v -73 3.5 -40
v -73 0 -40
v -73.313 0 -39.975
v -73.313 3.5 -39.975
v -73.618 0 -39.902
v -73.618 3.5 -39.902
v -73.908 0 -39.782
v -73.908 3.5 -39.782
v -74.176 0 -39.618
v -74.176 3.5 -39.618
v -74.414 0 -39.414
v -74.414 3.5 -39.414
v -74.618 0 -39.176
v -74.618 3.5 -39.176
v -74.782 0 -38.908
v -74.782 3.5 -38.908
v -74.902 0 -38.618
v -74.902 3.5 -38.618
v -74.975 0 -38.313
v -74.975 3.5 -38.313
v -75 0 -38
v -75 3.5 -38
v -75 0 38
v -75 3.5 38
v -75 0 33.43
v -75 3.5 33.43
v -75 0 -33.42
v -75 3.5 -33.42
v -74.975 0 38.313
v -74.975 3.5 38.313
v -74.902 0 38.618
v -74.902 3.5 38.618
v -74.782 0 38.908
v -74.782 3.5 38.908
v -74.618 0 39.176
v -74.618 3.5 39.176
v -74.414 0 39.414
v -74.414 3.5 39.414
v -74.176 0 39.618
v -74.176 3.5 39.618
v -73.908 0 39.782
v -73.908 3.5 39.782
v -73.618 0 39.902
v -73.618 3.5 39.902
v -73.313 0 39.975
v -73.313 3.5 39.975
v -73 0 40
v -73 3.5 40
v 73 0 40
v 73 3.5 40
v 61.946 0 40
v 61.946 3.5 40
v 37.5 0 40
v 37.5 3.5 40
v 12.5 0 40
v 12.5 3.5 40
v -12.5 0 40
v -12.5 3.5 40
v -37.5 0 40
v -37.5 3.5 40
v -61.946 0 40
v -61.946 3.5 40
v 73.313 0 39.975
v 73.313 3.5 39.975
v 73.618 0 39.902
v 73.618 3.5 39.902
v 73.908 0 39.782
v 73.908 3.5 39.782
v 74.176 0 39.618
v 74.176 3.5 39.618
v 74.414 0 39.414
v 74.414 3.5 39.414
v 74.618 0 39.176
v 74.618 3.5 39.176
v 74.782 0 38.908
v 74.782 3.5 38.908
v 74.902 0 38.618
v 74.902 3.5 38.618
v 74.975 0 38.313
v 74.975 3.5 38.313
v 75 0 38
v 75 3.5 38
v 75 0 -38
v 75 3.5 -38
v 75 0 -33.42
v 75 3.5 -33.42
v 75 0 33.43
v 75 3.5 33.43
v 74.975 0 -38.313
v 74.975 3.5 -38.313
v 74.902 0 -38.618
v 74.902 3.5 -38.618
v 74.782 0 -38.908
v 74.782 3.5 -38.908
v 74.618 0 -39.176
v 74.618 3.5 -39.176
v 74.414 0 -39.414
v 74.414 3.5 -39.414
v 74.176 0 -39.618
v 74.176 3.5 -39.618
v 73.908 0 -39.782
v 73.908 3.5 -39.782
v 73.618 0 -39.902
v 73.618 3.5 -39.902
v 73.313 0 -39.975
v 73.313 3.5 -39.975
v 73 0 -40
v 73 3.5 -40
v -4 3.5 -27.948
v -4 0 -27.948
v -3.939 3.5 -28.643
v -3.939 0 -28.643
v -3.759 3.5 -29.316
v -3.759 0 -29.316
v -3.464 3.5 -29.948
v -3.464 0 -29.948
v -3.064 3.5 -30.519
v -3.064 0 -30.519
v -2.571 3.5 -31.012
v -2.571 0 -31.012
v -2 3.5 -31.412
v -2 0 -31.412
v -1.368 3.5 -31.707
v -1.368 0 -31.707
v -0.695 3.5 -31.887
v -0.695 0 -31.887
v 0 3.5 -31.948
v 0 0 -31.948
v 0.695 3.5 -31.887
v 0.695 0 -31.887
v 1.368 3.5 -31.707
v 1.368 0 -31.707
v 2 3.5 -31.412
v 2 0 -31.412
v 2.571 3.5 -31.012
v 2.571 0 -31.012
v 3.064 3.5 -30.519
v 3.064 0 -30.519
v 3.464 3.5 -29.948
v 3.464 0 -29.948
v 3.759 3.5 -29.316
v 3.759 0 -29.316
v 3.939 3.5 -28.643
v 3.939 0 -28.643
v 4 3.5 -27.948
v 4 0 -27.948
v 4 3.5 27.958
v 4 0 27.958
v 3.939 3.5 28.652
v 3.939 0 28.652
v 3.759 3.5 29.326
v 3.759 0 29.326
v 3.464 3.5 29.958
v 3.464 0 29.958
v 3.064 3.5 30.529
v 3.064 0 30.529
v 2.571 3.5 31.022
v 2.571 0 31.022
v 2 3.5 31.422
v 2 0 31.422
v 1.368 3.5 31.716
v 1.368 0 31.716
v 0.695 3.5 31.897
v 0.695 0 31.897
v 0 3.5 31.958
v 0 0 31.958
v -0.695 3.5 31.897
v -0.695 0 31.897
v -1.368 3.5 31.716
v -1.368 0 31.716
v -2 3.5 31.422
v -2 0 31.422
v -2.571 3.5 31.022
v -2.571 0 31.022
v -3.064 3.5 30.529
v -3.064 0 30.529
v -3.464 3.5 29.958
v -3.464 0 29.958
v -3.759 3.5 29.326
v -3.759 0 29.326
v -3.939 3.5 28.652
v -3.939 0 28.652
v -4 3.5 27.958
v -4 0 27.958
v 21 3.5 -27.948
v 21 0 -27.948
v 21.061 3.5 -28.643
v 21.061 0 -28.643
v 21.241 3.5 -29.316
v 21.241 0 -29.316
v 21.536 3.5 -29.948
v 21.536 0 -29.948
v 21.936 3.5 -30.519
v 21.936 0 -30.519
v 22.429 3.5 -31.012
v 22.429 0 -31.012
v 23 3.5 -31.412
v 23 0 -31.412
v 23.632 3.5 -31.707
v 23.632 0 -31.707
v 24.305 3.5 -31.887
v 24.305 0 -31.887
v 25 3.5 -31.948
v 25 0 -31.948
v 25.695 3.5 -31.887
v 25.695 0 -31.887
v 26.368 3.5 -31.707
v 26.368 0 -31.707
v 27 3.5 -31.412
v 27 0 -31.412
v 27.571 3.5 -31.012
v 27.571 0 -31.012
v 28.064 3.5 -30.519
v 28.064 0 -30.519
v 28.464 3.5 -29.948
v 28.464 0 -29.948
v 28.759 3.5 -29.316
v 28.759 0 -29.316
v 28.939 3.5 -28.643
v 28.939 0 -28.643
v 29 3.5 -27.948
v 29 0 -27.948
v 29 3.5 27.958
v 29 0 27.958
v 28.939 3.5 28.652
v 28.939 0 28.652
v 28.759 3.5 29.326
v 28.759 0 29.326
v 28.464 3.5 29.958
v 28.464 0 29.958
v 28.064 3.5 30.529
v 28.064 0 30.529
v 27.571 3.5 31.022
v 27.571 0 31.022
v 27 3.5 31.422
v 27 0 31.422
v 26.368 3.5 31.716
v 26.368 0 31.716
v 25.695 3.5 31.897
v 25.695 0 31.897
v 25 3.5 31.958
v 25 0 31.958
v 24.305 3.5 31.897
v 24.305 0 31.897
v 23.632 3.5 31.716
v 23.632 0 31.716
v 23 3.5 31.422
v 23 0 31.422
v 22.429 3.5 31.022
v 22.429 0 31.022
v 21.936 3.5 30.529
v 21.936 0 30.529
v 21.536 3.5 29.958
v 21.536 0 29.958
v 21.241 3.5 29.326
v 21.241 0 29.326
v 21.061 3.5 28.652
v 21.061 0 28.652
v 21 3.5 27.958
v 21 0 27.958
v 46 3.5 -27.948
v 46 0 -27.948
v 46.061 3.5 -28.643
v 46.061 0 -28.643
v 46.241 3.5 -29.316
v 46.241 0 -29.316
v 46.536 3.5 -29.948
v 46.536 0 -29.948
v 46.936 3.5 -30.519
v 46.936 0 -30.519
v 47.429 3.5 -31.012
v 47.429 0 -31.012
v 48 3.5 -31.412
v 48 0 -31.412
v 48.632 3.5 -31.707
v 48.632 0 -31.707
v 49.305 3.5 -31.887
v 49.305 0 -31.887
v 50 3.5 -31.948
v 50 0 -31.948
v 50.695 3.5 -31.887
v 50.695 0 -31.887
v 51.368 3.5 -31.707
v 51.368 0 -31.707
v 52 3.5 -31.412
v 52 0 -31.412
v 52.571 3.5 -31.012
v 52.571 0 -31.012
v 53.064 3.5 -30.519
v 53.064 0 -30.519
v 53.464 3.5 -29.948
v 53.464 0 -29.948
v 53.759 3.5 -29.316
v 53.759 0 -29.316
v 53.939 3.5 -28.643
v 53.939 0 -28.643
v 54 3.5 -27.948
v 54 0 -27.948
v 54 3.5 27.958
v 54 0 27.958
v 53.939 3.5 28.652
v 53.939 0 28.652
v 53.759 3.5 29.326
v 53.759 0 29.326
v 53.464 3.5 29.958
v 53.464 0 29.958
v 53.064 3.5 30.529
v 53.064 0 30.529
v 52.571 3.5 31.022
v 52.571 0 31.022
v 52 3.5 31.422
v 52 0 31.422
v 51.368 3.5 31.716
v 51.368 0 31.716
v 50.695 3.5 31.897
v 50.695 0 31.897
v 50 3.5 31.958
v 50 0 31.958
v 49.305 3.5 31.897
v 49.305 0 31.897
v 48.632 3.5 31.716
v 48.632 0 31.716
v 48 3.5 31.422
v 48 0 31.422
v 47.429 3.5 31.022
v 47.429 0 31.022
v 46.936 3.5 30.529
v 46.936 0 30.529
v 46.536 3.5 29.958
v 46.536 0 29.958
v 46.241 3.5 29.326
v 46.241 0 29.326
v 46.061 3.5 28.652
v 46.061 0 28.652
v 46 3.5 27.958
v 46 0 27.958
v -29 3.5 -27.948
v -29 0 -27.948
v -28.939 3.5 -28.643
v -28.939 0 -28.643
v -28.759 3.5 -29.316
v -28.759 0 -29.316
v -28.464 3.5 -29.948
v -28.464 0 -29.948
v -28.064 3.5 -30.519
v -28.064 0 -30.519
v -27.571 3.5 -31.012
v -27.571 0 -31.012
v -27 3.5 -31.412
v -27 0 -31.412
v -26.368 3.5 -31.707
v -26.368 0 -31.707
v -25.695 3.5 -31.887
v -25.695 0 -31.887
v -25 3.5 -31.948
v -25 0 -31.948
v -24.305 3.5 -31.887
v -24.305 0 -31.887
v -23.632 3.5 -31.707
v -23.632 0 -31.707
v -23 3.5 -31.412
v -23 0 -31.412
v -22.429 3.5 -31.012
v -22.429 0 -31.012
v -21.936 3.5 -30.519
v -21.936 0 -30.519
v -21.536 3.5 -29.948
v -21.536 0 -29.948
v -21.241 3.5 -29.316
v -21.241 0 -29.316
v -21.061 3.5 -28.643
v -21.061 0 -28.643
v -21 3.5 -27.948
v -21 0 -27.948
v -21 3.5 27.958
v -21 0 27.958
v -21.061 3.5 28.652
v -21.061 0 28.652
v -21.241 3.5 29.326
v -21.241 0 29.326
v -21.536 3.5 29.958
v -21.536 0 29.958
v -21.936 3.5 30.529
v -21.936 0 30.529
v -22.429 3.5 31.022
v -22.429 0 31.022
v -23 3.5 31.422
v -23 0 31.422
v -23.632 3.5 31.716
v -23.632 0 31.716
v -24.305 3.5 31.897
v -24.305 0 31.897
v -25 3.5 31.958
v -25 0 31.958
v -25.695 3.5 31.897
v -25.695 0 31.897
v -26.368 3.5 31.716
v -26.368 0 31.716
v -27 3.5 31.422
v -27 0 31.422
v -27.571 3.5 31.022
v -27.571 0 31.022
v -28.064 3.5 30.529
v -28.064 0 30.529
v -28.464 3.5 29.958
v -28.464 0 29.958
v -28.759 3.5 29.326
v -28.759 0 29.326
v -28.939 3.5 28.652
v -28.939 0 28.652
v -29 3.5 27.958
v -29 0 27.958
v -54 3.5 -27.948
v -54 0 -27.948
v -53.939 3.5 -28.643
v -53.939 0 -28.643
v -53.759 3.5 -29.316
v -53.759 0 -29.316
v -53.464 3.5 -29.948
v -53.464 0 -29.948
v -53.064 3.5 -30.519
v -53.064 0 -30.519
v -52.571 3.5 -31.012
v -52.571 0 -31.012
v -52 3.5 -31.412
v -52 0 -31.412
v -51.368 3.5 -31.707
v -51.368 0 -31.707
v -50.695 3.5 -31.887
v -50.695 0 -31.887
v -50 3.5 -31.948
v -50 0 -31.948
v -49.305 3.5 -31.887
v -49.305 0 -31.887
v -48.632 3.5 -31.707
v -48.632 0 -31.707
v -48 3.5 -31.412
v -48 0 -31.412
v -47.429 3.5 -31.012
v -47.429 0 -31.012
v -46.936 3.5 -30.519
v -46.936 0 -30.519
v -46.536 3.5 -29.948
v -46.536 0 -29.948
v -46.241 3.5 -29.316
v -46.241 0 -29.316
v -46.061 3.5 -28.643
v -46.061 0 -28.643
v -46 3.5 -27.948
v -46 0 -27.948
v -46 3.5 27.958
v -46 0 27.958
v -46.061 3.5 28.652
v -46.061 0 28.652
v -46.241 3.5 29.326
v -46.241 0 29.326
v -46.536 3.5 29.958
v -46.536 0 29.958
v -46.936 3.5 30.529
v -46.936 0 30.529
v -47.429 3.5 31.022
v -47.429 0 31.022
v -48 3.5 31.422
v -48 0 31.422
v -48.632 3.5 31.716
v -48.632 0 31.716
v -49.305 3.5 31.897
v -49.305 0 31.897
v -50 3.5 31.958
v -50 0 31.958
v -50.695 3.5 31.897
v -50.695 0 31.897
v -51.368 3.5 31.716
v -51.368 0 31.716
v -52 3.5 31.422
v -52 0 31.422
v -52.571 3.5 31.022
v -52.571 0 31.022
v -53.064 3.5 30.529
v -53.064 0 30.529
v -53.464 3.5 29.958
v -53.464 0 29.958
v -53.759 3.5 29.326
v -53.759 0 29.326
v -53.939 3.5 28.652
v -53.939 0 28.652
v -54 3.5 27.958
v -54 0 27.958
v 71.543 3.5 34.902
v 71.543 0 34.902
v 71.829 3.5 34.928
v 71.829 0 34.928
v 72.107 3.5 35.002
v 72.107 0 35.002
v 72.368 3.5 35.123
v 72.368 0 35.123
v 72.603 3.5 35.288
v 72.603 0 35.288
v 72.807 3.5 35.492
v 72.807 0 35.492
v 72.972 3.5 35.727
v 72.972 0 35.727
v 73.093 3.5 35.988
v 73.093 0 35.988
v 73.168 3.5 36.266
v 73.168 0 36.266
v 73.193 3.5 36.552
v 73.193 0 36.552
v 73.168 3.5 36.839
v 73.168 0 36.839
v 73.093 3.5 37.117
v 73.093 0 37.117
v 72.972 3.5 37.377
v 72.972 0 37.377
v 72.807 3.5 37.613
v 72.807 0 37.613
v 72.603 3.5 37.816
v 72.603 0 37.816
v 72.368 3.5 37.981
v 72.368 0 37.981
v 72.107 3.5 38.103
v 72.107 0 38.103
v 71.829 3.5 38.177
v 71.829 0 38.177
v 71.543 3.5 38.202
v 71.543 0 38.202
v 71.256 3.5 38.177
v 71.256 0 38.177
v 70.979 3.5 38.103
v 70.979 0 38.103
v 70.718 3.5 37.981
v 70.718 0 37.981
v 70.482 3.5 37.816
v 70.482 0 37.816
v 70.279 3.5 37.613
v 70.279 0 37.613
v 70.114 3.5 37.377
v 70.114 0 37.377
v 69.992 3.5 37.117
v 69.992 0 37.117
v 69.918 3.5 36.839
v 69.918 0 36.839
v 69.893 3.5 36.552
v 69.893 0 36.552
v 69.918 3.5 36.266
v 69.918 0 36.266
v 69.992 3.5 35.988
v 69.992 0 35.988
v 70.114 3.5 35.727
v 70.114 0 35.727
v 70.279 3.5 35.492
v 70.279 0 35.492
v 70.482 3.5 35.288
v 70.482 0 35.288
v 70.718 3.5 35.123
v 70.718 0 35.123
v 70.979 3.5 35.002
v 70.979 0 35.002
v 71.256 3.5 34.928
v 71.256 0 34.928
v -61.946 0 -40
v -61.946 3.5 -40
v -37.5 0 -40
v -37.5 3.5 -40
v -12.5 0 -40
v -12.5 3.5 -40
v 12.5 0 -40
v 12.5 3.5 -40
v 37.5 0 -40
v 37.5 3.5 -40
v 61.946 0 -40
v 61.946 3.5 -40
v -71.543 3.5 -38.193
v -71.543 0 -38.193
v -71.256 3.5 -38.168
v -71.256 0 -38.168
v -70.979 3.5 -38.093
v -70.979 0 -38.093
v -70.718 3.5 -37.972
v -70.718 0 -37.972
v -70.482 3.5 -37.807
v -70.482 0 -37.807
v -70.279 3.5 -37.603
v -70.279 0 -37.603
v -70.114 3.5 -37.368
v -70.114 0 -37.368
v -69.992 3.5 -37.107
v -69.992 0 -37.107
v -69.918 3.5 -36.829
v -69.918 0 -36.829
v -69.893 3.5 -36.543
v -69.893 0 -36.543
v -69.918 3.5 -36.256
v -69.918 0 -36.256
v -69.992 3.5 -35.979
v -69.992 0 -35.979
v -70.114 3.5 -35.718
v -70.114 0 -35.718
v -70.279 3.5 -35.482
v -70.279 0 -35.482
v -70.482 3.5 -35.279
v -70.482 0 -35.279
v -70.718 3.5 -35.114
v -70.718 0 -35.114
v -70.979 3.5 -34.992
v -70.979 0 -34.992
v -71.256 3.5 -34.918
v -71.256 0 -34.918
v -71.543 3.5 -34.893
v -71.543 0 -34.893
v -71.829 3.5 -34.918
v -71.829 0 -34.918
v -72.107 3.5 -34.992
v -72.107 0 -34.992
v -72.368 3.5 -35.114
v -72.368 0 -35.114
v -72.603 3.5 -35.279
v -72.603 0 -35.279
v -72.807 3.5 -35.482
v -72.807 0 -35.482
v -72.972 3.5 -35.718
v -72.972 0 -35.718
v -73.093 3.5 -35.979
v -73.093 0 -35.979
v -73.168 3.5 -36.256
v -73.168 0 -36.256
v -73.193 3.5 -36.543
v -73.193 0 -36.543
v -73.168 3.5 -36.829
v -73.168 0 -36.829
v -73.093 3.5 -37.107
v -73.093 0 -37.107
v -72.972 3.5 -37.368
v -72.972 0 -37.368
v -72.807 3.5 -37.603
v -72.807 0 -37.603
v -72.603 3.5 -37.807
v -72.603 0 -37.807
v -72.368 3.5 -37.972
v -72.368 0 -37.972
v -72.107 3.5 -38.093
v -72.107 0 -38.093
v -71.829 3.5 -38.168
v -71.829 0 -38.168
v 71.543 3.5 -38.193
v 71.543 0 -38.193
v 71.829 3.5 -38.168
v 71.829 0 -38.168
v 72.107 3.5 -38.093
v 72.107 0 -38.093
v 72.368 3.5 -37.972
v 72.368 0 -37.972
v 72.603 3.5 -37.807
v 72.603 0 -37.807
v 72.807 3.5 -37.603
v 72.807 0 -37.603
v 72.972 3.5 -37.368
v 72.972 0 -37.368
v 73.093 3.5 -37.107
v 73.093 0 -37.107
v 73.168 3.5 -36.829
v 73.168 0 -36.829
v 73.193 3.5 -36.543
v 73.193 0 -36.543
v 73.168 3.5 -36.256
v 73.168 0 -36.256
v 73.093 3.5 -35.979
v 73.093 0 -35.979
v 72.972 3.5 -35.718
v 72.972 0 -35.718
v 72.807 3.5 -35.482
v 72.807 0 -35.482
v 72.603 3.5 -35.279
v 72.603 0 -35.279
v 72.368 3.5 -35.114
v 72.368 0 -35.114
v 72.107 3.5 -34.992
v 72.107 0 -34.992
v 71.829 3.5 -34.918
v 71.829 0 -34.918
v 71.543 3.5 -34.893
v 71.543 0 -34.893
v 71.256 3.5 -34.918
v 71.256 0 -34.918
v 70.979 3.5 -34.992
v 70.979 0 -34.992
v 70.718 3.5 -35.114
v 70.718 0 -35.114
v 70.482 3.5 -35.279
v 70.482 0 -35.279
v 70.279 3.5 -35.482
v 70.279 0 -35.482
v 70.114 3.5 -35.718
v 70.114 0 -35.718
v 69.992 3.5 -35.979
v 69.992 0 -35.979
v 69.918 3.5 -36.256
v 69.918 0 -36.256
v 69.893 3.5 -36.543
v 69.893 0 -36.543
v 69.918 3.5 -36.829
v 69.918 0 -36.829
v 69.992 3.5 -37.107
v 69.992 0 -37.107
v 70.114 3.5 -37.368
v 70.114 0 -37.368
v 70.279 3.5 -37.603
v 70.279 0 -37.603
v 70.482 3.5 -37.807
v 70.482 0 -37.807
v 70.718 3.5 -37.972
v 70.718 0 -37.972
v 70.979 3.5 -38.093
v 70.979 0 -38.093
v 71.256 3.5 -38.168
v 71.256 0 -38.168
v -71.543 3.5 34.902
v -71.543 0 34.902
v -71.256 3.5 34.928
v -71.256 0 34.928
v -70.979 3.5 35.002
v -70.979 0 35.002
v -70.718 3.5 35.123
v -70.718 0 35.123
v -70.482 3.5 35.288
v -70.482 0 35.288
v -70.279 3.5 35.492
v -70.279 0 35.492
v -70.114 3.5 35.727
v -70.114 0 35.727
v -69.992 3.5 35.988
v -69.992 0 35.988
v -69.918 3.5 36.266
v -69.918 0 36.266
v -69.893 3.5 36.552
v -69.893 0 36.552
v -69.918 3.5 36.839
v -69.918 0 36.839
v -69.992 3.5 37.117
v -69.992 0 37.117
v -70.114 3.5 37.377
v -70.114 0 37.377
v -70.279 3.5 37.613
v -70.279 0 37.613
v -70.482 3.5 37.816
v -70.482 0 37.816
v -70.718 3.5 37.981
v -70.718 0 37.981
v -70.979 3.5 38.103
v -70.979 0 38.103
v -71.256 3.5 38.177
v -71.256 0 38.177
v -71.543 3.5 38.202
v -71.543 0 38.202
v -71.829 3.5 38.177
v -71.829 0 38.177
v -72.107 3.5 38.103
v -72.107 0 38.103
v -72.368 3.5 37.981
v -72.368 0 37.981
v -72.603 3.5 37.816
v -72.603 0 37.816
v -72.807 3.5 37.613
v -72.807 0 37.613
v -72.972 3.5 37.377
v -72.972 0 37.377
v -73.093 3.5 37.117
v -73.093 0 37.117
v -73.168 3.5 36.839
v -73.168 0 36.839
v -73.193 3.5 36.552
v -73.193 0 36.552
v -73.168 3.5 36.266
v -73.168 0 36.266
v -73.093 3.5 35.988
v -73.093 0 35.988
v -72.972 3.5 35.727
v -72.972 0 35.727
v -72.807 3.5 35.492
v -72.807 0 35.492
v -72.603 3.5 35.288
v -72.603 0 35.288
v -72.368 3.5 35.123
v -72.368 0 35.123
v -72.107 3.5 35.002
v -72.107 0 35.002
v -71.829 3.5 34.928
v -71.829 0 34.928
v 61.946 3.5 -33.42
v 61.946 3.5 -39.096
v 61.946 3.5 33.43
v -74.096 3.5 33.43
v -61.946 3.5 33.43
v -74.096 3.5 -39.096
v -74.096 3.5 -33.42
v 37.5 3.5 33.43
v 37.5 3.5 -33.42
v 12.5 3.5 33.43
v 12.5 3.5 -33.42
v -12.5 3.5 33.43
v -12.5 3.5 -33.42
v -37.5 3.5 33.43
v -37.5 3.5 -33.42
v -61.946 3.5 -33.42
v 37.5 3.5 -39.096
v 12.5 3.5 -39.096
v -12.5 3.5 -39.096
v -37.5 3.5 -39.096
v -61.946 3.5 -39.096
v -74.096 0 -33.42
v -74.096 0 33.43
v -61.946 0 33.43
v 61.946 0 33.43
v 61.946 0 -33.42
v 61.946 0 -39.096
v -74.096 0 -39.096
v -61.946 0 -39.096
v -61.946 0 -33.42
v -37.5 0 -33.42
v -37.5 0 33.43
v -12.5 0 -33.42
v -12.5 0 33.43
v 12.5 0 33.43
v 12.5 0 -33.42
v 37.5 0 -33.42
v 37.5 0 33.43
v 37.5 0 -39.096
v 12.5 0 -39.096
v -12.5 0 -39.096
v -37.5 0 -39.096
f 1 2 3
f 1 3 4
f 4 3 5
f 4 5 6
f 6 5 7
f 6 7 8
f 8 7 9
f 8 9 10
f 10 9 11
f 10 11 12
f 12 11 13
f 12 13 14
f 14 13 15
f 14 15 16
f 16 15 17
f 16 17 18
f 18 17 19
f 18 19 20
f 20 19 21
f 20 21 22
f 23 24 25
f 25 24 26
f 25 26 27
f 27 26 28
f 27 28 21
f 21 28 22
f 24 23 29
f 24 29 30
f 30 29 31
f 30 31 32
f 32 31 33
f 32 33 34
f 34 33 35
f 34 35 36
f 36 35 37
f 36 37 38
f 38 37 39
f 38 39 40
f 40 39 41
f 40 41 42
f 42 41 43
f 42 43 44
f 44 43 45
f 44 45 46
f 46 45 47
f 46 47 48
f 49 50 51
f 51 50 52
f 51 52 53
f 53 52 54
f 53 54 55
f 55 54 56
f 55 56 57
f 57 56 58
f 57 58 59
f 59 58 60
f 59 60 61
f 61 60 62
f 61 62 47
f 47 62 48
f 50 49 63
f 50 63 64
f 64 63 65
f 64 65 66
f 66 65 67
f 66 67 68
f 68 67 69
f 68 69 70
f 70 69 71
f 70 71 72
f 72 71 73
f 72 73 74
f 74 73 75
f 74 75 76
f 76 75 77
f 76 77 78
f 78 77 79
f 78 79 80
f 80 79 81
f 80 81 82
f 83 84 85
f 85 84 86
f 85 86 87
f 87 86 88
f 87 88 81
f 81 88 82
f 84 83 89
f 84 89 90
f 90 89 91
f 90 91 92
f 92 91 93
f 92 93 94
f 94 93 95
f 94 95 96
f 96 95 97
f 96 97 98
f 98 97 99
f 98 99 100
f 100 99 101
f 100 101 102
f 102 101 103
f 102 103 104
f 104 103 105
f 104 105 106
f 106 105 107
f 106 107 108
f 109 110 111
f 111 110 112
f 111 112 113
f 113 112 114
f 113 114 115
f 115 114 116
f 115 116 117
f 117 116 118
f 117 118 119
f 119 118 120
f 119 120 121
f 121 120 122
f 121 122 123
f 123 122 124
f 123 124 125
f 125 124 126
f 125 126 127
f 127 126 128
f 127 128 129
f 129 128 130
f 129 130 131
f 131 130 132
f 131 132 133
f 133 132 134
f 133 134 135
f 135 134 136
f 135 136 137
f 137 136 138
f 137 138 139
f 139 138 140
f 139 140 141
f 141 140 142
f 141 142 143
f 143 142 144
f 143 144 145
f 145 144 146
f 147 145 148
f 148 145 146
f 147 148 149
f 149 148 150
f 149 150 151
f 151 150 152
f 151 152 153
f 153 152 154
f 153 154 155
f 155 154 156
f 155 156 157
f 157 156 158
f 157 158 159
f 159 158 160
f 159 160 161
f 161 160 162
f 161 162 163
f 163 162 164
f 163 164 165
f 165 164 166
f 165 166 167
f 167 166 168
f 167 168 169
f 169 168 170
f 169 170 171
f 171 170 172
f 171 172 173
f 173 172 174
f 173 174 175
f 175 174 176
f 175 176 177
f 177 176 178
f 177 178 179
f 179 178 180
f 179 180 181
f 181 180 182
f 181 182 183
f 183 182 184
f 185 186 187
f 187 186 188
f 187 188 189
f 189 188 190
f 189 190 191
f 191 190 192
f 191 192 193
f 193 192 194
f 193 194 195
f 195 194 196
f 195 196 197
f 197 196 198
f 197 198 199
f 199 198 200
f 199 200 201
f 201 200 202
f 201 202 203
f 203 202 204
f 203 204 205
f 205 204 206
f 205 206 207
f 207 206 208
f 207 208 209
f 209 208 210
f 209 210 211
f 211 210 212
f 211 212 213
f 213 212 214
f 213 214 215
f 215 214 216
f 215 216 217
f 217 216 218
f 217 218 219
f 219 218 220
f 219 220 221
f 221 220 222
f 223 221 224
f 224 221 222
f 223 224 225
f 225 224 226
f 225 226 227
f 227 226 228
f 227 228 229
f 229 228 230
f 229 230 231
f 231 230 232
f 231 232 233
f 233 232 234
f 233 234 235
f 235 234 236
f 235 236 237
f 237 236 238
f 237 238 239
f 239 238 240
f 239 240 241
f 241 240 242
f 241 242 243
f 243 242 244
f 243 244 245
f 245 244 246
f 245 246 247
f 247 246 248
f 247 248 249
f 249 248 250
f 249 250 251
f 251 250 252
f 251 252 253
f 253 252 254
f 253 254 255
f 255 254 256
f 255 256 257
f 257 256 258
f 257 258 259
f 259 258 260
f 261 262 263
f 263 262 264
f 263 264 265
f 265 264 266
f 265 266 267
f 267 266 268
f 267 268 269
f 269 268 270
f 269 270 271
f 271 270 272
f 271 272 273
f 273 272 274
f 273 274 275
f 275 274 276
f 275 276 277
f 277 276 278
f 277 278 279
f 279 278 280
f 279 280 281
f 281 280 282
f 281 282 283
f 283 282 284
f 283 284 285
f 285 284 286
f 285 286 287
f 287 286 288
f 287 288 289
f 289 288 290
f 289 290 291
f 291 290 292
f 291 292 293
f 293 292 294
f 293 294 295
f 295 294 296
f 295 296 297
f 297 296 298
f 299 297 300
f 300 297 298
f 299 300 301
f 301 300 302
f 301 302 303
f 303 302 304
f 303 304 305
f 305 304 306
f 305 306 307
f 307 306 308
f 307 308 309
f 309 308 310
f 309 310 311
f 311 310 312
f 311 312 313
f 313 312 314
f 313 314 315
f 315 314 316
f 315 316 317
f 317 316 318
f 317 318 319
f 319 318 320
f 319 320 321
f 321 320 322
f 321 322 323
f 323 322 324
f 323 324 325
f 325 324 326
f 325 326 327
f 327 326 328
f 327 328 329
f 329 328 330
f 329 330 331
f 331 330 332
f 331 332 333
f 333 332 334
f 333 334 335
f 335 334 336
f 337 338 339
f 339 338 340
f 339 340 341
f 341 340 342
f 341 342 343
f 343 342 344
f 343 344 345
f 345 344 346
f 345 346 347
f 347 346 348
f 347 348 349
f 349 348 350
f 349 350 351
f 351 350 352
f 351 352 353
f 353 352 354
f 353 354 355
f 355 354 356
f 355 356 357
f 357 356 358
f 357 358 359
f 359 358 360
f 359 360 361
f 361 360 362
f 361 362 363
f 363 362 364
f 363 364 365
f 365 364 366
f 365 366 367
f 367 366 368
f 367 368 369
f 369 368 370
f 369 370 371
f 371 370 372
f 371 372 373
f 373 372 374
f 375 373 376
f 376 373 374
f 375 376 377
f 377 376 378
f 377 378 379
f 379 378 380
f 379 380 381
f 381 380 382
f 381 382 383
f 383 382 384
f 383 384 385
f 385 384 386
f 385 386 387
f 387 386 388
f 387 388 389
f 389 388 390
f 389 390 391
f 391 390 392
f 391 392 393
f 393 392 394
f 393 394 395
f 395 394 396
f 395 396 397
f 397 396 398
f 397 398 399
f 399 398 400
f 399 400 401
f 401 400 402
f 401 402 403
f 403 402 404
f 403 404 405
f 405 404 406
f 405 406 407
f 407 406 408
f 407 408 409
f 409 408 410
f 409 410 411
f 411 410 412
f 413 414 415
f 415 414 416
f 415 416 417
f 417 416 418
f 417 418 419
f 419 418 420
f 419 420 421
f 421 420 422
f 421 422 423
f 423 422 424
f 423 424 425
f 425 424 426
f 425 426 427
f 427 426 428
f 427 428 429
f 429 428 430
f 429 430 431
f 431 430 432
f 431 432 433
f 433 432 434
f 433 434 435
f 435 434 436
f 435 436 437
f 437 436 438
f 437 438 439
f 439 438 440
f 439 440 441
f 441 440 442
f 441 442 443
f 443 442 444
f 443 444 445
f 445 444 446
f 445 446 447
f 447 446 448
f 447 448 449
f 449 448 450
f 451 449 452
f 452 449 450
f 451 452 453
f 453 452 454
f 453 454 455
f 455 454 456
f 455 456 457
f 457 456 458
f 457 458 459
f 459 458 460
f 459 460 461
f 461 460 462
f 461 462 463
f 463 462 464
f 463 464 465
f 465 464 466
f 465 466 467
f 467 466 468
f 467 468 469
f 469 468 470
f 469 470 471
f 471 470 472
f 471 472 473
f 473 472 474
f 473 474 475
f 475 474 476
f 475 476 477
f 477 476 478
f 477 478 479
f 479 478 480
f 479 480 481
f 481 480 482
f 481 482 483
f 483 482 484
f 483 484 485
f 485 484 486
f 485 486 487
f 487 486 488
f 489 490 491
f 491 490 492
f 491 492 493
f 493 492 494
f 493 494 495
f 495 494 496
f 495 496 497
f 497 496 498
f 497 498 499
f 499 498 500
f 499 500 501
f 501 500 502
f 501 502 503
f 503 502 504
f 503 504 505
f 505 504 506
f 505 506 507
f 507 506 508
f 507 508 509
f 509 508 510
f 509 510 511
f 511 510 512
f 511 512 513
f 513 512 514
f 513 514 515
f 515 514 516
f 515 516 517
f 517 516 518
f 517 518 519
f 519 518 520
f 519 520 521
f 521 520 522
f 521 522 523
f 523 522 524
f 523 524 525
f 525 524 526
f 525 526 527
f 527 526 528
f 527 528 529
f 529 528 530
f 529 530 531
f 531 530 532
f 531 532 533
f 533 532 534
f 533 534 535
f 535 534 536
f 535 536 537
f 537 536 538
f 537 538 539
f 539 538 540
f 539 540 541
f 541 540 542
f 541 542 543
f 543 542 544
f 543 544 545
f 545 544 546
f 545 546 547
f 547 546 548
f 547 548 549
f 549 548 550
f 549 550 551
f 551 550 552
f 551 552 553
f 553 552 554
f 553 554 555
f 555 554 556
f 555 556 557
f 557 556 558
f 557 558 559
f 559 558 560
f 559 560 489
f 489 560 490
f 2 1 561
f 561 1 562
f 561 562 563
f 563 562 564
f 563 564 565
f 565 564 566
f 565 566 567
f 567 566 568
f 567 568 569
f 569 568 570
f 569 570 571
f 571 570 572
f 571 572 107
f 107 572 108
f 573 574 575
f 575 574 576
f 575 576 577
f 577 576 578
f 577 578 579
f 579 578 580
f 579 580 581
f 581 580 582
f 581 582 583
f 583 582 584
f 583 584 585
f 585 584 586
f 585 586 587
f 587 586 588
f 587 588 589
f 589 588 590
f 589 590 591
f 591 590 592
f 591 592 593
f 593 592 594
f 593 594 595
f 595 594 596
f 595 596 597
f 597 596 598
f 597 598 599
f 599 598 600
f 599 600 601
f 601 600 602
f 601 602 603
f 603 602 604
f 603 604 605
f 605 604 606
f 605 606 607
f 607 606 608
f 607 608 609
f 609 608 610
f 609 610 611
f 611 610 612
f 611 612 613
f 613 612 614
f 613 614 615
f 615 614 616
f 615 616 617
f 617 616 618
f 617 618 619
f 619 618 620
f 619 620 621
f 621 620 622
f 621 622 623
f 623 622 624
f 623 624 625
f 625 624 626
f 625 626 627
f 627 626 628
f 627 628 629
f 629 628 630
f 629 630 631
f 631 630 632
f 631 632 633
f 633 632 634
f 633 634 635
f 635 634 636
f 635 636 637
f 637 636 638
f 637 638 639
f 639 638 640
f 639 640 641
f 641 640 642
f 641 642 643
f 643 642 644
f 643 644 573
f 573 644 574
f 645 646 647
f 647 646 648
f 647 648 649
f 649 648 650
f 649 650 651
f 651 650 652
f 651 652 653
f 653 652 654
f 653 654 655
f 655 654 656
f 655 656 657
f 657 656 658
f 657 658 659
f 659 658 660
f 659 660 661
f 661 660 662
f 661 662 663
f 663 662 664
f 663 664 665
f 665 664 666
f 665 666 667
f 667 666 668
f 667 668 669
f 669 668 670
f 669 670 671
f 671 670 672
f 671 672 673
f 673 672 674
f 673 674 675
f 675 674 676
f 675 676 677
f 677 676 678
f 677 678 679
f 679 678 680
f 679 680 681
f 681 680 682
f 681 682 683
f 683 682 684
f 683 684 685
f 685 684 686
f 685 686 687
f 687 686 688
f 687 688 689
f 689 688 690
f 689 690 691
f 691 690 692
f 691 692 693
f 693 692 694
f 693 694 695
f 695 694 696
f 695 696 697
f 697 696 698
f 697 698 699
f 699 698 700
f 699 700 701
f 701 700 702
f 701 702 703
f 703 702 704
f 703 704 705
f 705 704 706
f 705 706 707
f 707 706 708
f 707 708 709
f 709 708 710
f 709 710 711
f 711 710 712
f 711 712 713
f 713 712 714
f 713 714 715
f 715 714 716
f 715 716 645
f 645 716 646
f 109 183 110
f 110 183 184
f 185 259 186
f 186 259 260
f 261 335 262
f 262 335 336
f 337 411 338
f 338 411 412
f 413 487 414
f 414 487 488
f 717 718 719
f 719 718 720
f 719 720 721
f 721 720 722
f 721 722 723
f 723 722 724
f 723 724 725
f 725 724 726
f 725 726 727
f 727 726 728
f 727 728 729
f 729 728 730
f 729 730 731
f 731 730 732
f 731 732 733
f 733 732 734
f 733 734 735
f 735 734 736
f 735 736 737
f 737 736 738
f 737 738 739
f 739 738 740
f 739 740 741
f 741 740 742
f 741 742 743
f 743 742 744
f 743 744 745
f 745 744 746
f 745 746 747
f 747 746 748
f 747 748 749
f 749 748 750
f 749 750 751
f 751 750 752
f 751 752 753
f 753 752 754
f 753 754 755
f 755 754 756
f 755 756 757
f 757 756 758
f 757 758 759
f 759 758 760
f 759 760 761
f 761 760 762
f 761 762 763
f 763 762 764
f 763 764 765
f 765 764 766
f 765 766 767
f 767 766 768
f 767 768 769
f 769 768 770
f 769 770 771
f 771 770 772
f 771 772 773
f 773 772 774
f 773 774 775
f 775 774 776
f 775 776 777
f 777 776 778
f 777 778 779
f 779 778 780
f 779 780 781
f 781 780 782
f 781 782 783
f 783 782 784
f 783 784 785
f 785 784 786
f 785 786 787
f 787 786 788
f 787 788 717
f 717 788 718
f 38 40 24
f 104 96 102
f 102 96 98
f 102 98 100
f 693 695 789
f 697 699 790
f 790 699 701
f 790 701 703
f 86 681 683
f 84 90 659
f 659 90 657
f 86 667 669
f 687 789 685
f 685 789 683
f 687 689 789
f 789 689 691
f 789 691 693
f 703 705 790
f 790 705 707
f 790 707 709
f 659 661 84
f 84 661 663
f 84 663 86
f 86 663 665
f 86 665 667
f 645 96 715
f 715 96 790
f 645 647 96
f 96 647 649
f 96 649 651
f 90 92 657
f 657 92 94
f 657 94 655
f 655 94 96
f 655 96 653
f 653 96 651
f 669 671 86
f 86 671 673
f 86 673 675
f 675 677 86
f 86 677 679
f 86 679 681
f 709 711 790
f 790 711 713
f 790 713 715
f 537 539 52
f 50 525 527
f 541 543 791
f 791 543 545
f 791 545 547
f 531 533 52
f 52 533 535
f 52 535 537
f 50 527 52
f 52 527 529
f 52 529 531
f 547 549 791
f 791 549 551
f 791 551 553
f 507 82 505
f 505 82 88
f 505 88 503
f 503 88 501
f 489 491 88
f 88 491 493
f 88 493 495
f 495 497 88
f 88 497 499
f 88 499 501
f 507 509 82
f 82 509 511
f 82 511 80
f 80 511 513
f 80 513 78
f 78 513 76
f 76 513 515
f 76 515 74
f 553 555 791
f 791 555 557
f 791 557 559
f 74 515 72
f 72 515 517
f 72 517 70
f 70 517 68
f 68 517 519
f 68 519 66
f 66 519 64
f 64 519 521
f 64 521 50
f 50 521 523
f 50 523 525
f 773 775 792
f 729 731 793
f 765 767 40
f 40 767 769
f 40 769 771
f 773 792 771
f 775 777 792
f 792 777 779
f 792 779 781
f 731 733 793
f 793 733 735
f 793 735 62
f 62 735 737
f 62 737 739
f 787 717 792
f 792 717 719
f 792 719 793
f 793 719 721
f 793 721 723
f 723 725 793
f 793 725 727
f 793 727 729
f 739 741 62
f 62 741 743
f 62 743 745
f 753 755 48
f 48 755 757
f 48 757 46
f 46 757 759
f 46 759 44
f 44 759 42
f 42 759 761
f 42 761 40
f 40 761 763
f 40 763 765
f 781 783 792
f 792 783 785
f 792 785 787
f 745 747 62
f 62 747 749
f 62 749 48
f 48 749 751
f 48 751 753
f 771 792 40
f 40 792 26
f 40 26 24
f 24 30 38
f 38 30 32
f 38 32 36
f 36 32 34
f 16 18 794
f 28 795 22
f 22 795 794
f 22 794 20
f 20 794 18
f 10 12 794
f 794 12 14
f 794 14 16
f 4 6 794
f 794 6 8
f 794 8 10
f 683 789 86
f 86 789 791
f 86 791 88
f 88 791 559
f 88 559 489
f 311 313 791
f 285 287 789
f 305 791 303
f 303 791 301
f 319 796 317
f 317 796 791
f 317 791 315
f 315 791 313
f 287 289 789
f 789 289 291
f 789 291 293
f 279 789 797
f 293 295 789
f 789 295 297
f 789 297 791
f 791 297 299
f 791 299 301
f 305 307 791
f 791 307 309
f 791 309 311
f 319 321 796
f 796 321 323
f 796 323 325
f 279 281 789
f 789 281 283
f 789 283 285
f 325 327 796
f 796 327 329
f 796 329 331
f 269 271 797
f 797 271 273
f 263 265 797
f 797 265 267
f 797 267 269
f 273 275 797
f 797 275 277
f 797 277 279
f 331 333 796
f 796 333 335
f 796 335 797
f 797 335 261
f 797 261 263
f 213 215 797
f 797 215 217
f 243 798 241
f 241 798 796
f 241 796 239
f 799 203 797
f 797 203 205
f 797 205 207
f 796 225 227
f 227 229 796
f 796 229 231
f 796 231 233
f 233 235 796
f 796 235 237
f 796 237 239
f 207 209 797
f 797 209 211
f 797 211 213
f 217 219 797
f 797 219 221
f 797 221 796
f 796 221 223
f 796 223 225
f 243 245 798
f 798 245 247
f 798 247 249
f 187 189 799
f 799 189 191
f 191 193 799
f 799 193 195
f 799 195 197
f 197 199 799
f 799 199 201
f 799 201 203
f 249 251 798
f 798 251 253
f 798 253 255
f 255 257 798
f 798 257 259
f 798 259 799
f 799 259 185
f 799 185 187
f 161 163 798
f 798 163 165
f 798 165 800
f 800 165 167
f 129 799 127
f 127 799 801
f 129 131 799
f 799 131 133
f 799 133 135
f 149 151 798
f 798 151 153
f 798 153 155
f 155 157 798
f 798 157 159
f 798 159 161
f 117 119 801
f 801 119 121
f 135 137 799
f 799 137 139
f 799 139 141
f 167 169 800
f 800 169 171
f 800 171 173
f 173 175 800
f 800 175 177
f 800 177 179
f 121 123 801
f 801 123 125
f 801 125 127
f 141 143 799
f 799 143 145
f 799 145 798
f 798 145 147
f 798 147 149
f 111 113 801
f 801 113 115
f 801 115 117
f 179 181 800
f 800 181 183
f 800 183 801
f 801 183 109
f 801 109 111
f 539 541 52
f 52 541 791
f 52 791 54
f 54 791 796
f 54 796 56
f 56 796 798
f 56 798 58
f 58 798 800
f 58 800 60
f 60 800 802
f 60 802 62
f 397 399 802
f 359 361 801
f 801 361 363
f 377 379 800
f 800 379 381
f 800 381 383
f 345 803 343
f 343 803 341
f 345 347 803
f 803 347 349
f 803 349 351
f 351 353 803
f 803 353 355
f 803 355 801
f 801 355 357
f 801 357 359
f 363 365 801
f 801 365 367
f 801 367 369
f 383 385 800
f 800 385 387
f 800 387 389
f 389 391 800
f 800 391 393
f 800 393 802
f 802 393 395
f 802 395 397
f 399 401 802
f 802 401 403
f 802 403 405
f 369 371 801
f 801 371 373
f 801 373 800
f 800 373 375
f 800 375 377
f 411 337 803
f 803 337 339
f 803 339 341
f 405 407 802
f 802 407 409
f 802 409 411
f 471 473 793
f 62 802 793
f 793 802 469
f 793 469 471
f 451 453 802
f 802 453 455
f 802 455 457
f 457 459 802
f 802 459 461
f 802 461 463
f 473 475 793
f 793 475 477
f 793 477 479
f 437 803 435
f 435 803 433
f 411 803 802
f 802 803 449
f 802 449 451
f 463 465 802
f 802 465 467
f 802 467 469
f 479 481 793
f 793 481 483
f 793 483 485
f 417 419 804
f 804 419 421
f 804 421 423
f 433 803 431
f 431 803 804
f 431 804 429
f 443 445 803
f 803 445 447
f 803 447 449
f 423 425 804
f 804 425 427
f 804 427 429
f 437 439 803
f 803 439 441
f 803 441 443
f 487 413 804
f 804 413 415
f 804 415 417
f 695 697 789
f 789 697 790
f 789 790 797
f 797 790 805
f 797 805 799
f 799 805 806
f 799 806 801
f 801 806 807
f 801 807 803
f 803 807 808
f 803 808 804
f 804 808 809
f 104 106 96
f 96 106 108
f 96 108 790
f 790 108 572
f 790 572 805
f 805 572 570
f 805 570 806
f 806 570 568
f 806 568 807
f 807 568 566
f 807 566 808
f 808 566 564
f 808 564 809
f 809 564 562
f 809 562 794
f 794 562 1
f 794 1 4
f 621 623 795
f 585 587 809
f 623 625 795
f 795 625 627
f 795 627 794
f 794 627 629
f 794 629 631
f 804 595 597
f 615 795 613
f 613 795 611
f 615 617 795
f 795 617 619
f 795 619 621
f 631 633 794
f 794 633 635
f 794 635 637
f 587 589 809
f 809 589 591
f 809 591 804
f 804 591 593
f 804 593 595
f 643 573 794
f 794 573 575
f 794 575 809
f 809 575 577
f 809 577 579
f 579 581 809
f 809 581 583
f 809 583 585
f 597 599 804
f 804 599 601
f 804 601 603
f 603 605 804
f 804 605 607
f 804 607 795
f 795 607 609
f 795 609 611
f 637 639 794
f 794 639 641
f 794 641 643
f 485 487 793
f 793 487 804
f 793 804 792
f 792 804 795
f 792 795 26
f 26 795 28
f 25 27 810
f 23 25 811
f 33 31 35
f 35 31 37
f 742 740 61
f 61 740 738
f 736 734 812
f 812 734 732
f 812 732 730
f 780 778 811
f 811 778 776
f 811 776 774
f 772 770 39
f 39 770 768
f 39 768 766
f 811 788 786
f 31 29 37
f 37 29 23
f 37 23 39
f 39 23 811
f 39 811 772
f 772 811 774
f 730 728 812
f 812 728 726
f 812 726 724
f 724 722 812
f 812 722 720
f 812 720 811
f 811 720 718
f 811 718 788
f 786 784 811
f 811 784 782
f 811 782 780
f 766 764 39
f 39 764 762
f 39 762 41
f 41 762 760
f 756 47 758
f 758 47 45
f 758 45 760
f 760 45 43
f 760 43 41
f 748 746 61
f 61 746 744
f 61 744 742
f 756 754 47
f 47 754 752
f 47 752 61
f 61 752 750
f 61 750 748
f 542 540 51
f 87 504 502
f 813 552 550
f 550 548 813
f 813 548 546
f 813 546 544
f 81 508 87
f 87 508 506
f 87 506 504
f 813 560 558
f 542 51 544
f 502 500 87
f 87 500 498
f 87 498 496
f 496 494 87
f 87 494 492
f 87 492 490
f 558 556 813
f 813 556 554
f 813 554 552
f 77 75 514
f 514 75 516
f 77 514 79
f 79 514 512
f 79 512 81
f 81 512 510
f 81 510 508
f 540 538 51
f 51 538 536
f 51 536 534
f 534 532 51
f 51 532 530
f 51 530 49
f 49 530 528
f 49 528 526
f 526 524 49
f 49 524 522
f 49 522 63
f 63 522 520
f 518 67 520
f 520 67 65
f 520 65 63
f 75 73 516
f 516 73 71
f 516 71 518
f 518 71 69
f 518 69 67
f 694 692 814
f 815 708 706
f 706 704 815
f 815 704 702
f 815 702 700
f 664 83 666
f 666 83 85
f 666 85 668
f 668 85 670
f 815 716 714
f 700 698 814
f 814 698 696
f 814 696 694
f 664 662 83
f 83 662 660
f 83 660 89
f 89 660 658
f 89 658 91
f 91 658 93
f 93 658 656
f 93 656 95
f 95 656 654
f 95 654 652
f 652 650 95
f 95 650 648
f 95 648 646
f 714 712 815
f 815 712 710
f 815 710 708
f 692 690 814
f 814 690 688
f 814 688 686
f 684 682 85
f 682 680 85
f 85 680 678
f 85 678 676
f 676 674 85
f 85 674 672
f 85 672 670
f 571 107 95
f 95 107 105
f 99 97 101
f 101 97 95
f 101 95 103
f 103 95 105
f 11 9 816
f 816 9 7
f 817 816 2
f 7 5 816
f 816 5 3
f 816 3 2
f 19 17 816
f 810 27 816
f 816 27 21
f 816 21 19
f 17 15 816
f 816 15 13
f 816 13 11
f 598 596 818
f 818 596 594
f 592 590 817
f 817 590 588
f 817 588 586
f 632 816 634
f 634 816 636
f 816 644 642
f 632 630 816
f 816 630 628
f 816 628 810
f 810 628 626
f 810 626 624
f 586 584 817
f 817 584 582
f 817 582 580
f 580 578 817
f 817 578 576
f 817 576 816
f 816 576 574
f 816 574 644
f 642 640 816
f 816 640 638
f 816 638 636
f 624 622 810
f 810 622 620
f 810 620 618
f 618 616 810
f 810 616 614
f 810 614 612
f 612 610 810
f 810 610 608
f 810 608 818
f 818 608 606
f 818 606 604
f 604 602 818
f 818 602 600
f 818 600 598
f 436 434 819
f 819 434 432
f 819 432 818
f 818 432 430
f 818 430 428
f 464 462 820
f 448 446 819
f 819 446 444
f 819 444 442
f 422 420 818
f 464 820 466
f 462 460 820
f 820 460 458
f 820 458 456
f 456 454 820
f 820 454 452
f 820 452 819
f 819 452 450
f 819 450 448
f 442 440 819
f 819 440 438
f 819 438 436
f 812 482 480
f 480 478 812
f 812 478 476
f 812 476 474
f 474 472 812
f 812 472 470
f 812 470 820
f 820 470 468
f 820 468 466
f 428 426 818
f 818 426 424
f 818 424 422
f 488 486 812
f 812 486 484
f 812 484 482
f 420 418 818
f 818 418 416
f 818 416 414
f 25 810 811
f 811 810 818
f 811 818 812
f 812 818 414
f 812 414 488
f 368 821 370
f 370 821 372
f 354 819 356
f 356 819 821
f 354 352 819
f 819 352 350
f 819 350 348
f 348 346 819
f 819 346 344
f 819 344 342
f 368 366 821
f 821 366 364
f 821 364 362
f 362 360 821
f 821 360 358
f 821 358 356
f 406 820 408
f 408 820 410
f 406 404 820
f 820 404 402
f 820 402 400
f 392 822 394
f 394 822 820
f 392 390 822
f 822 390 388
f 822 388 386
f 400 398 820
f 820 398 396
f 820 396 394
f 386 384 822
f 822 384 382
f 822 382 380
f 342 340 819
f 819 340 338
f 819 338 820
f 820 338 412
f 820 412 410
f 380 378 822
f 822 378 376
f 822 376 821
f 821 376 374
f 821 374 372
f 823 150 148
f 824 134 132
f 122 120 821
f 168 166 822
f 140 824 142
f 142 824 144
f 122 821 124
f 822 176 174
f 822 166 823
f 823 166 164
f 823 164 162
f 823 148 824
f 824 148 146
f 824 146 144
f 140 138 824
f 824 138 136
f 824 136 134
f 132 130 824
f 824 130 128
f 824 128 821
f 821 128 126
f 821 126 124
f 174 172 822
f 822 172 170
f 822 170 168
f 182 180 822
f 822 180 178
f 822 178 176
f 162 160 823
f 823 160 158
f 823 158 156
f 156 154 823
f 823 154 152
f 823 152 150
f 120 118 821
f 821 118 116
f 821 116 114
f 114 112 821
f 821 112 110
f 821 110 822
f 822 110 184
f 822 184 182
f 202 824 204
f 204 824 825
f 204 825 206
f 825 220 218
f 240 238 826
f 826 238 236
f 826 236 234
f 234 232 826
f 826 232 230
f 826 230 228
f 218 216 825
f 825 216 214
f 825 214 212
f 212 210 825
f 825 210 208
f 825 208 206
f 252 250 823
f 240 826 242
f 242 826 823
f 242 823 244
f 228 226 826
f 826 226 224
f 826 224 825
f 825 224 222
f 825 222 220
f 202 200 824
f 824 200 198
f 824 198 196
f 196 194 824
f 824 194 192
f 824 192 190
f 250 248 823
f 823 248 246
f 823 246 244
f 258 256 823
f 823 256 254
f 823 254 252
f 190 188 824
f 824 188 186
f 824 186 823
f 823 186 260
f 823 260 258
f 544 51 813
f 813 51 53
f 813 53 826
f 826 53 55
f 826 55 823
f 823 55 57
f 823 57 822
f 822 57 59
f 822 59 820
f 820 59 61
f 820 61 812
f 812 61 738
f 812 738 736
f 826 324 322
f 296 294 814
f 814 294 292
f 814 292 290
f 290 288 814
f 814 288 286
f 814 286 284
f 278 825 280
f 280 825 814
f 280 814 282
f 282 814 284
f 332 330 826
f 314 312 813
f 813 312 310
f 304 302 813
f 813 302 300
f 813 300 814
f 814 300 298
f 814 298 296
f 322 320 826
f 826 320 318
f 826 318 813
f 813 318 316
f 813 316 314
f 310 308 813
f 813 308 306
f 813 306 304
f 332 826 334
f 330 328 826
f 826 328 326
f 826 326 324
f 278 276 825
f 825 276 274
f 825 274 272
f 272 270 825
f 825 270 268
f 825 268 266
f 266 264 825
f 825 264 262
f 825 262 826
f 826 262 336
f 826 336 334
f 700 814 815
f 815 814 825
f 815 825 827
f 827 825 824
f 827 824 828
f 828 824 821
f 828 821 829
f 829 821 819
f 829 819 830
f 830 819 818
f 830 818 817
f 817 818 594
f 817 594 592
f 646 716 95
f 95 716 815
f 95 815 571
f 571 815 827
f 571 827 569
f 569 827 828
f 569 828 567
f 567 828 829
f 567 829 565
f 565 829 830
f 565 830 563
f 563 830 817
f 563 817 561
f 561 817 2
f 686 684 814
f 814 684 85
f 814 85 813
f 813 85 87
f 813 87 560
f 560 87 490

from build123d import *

# Parameters (mm, degrees)
SKETCH1_R           = 1.65
BOSS_EXTRUDE1_DEPTH = 3.5


with BuildPart() as part:
    # Sketch1 → Boss-Extrude1 (new body)
    with BuildSketch(Plane(origin=(0, 0, 0), x_dir=(1, 0, 0), z_dir=(0, 1, 0))):
        with BuildLine():
            ThreePointArc((-75, 38), (-74.414213562, 39.414213562), (-73, 40))
            Line((-73, 40), (73, 40))
            ThreePointArc((73, 40), (74.414213562, 39.414213562), (75, 38))
            Line((75, 38), (75, -38))
            ThreePointArc((75, -38), (74.414213562, -39.414213562), (73, -40))
            Line((73, -40), (-73, -40))
            ThreePointArc((-73, -40), (-74.414213562, -39.414213562), (-75, -38))
            Line((-75, -38), (-75, 38))
        make_face()
        with Locations(Location((71.542893219, 36.542893219, 0), (0, 0, 270))):
            Circle(SKETCH1_R, mode=Mode.SUBTRACT)
        with Locations(Location((-71.542893219, 36.542893219, 0), (0, 0, 270))):
            Circle(SKETCH1_R, mode=Mode.SUBTRACT)
        with Locations(Location((71.542893219, -36.552437932, 0), (0, 0, 270))):
            Circle(SKETCH1_R, mode=Mode.SUBTRACT)
        with Locations(Location((-71.542893219, -36.552437932, 0), (0, 0, 270))):
            Circle(SKETCH1_R, mode=Mode.SUBTRACT)
        with BuildLine():
            ThreePointArc((-46, 27.948088576), (-50, 31.948088576), (-54, 27.948088576))
            Line((-54, 27.948088576), (-54, -27.957633289))
            ThreePointArc((-54, -27.957633289), (-50, -31.957633289), (-46, -27.957633289))
            Line((-46, -27.957633289), (-46, 27.948088576))
        make_face(mode=Mode.SUBTRACT)
        with BuildLine():
            ThreePointArc((-21, 27.948088576), (-25, 31.948088576), (-29, 27.948088576))
            Line((-29, 27.948088576), (-29, -27.957633289))
            ThreePointArc((-29, -27.957633289), (-25, -31.957633289), (-21, -27.957633289))
            Line((-21, -27.957633289), (-21, 27.948088576))
        make_face(mode=Mode.SUBTRACT)
        with BuildLine():
            ThreePointArc((54, 27.948088576), (50, 31.948088576), (46, 27.948088576))
            Line((46, 27.948088576), (46, -27.957633289))
            ThreePointArc((46, -27.957633289), (50, -31.957633289), (54, -27.957633289))
            Line((54, -27.957633289), (54, 27.948088576))
        make_face(mode=Mode.SUBTRACT)
        with BuildLine():
            ThreePointArc((29, 27.948088576), (25, 31.948088576), (21, 27.948088576))
            Line((21, 27.948088576), (21, -27.957633289))
            ThreePointArc((21, -27.957633289), (25, -31.957633289), (29, -27.957633289))
            Line((29, -27.957633289), (29, 27.948088576))
        make_face(mode=Mode.SUBTRACT)
        with BuildLine():
            ThreePointArc((4, 27.948088576), (0, 31.948088576), (-4, 27.948088576))
            Line((-4, 27.948088576), (-4, -27.957633289))
            ThreePointArc((-4, -27.957633289), (0, -31.957633289), (4, -27.957633289))
            Line((4, -27.957633289), (4, 27.948088576))
        make_face(mode=Mode.SUBTRACT)
    extrude(amount=BOSS_EXTRUDE1_DEPTH)


solid = part.part
